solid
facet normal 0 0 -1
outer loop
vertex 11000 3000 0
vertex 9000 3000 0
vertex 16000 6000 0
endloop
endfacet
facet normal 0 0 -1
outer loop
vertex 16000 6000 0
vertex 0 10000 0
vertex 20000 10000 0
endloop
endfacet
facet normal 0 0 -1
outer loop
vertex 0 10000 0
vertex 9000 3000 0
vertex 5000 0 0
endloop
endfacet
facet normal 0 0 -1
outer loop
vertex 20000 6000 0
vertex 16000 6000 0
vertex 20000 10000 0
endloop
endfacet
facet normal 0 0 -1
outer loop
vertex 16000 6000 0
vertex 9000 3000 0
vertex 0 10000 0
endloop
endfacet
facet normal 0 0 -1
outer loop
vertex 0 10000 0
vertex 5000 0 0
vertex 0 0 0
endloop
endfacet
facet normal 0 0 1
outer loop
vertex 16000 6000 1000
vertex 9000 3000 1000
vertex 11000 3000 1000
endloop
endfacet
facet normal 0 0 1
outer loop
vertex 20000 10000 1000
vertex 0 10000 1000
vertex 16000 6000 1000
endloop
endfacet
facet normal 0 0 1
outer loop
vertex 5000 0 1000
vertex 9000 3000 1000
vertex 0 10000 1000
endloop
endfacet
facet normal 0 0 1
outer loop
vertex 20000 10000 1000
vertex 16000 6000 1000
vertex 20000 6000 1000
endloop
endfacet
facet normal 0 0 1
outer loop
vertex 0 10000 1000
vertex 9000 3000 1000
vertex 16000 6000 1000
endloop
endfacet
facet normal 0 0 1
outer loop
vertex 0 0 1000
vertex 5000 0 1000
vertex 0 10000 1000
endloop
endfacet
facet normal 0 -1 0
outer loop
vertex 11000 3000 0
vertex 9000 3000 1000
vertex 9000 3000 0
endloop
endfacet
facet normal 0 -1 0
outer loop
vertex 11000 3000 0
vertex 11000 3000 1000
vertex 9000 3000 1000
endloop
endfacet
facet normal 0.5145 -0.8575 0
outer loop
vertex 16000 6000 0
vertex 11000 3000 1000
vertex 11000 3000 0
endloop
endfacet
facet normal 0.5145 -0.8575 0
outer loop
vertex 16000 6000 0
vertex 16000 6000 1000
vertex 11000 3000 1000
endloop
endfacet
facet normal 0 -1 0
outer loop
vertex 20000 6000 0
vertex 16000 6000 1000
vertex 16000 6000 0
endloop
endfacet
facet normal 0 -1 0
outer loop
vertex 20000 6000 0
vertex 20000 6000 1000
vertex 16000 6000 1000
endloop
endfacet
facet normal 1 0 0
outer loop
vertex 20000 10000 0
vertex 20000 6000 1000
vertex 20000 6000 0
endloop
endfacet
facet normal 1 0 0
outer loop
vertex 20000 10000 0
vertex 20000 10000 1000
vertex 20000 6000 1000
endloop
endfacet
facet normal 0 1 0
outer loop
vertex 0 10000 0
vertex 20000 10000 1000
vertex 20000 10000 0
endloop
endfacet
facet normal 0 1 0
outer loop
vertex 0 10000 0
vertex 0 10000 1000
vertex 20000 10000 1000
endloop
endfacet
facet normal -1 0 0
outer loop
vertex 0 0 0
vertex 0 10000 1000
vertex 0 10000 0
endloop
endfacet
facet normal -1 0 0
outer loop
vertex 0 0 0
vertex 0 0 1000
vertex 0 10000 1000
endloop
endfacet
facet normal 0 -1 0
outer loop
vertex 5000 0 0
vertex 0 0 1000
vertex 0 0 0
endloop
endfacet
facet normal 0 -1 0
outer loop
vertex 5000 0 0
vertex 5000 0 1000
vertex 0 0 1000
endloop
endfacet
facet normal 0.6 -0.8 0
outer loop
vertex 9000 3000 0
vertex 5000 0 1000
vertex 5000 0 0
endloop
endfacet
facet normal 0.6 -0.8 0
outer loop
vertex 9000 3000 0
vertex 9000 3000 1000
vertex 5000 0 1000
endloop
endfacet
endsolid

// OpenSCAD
m = 1000;

scale([m,m,m])
linear_extrude(1)
polygon([[0,0],[5,0],[9,3],[11,3],[16,6],[20,6],[20,10], [0,10]]);
